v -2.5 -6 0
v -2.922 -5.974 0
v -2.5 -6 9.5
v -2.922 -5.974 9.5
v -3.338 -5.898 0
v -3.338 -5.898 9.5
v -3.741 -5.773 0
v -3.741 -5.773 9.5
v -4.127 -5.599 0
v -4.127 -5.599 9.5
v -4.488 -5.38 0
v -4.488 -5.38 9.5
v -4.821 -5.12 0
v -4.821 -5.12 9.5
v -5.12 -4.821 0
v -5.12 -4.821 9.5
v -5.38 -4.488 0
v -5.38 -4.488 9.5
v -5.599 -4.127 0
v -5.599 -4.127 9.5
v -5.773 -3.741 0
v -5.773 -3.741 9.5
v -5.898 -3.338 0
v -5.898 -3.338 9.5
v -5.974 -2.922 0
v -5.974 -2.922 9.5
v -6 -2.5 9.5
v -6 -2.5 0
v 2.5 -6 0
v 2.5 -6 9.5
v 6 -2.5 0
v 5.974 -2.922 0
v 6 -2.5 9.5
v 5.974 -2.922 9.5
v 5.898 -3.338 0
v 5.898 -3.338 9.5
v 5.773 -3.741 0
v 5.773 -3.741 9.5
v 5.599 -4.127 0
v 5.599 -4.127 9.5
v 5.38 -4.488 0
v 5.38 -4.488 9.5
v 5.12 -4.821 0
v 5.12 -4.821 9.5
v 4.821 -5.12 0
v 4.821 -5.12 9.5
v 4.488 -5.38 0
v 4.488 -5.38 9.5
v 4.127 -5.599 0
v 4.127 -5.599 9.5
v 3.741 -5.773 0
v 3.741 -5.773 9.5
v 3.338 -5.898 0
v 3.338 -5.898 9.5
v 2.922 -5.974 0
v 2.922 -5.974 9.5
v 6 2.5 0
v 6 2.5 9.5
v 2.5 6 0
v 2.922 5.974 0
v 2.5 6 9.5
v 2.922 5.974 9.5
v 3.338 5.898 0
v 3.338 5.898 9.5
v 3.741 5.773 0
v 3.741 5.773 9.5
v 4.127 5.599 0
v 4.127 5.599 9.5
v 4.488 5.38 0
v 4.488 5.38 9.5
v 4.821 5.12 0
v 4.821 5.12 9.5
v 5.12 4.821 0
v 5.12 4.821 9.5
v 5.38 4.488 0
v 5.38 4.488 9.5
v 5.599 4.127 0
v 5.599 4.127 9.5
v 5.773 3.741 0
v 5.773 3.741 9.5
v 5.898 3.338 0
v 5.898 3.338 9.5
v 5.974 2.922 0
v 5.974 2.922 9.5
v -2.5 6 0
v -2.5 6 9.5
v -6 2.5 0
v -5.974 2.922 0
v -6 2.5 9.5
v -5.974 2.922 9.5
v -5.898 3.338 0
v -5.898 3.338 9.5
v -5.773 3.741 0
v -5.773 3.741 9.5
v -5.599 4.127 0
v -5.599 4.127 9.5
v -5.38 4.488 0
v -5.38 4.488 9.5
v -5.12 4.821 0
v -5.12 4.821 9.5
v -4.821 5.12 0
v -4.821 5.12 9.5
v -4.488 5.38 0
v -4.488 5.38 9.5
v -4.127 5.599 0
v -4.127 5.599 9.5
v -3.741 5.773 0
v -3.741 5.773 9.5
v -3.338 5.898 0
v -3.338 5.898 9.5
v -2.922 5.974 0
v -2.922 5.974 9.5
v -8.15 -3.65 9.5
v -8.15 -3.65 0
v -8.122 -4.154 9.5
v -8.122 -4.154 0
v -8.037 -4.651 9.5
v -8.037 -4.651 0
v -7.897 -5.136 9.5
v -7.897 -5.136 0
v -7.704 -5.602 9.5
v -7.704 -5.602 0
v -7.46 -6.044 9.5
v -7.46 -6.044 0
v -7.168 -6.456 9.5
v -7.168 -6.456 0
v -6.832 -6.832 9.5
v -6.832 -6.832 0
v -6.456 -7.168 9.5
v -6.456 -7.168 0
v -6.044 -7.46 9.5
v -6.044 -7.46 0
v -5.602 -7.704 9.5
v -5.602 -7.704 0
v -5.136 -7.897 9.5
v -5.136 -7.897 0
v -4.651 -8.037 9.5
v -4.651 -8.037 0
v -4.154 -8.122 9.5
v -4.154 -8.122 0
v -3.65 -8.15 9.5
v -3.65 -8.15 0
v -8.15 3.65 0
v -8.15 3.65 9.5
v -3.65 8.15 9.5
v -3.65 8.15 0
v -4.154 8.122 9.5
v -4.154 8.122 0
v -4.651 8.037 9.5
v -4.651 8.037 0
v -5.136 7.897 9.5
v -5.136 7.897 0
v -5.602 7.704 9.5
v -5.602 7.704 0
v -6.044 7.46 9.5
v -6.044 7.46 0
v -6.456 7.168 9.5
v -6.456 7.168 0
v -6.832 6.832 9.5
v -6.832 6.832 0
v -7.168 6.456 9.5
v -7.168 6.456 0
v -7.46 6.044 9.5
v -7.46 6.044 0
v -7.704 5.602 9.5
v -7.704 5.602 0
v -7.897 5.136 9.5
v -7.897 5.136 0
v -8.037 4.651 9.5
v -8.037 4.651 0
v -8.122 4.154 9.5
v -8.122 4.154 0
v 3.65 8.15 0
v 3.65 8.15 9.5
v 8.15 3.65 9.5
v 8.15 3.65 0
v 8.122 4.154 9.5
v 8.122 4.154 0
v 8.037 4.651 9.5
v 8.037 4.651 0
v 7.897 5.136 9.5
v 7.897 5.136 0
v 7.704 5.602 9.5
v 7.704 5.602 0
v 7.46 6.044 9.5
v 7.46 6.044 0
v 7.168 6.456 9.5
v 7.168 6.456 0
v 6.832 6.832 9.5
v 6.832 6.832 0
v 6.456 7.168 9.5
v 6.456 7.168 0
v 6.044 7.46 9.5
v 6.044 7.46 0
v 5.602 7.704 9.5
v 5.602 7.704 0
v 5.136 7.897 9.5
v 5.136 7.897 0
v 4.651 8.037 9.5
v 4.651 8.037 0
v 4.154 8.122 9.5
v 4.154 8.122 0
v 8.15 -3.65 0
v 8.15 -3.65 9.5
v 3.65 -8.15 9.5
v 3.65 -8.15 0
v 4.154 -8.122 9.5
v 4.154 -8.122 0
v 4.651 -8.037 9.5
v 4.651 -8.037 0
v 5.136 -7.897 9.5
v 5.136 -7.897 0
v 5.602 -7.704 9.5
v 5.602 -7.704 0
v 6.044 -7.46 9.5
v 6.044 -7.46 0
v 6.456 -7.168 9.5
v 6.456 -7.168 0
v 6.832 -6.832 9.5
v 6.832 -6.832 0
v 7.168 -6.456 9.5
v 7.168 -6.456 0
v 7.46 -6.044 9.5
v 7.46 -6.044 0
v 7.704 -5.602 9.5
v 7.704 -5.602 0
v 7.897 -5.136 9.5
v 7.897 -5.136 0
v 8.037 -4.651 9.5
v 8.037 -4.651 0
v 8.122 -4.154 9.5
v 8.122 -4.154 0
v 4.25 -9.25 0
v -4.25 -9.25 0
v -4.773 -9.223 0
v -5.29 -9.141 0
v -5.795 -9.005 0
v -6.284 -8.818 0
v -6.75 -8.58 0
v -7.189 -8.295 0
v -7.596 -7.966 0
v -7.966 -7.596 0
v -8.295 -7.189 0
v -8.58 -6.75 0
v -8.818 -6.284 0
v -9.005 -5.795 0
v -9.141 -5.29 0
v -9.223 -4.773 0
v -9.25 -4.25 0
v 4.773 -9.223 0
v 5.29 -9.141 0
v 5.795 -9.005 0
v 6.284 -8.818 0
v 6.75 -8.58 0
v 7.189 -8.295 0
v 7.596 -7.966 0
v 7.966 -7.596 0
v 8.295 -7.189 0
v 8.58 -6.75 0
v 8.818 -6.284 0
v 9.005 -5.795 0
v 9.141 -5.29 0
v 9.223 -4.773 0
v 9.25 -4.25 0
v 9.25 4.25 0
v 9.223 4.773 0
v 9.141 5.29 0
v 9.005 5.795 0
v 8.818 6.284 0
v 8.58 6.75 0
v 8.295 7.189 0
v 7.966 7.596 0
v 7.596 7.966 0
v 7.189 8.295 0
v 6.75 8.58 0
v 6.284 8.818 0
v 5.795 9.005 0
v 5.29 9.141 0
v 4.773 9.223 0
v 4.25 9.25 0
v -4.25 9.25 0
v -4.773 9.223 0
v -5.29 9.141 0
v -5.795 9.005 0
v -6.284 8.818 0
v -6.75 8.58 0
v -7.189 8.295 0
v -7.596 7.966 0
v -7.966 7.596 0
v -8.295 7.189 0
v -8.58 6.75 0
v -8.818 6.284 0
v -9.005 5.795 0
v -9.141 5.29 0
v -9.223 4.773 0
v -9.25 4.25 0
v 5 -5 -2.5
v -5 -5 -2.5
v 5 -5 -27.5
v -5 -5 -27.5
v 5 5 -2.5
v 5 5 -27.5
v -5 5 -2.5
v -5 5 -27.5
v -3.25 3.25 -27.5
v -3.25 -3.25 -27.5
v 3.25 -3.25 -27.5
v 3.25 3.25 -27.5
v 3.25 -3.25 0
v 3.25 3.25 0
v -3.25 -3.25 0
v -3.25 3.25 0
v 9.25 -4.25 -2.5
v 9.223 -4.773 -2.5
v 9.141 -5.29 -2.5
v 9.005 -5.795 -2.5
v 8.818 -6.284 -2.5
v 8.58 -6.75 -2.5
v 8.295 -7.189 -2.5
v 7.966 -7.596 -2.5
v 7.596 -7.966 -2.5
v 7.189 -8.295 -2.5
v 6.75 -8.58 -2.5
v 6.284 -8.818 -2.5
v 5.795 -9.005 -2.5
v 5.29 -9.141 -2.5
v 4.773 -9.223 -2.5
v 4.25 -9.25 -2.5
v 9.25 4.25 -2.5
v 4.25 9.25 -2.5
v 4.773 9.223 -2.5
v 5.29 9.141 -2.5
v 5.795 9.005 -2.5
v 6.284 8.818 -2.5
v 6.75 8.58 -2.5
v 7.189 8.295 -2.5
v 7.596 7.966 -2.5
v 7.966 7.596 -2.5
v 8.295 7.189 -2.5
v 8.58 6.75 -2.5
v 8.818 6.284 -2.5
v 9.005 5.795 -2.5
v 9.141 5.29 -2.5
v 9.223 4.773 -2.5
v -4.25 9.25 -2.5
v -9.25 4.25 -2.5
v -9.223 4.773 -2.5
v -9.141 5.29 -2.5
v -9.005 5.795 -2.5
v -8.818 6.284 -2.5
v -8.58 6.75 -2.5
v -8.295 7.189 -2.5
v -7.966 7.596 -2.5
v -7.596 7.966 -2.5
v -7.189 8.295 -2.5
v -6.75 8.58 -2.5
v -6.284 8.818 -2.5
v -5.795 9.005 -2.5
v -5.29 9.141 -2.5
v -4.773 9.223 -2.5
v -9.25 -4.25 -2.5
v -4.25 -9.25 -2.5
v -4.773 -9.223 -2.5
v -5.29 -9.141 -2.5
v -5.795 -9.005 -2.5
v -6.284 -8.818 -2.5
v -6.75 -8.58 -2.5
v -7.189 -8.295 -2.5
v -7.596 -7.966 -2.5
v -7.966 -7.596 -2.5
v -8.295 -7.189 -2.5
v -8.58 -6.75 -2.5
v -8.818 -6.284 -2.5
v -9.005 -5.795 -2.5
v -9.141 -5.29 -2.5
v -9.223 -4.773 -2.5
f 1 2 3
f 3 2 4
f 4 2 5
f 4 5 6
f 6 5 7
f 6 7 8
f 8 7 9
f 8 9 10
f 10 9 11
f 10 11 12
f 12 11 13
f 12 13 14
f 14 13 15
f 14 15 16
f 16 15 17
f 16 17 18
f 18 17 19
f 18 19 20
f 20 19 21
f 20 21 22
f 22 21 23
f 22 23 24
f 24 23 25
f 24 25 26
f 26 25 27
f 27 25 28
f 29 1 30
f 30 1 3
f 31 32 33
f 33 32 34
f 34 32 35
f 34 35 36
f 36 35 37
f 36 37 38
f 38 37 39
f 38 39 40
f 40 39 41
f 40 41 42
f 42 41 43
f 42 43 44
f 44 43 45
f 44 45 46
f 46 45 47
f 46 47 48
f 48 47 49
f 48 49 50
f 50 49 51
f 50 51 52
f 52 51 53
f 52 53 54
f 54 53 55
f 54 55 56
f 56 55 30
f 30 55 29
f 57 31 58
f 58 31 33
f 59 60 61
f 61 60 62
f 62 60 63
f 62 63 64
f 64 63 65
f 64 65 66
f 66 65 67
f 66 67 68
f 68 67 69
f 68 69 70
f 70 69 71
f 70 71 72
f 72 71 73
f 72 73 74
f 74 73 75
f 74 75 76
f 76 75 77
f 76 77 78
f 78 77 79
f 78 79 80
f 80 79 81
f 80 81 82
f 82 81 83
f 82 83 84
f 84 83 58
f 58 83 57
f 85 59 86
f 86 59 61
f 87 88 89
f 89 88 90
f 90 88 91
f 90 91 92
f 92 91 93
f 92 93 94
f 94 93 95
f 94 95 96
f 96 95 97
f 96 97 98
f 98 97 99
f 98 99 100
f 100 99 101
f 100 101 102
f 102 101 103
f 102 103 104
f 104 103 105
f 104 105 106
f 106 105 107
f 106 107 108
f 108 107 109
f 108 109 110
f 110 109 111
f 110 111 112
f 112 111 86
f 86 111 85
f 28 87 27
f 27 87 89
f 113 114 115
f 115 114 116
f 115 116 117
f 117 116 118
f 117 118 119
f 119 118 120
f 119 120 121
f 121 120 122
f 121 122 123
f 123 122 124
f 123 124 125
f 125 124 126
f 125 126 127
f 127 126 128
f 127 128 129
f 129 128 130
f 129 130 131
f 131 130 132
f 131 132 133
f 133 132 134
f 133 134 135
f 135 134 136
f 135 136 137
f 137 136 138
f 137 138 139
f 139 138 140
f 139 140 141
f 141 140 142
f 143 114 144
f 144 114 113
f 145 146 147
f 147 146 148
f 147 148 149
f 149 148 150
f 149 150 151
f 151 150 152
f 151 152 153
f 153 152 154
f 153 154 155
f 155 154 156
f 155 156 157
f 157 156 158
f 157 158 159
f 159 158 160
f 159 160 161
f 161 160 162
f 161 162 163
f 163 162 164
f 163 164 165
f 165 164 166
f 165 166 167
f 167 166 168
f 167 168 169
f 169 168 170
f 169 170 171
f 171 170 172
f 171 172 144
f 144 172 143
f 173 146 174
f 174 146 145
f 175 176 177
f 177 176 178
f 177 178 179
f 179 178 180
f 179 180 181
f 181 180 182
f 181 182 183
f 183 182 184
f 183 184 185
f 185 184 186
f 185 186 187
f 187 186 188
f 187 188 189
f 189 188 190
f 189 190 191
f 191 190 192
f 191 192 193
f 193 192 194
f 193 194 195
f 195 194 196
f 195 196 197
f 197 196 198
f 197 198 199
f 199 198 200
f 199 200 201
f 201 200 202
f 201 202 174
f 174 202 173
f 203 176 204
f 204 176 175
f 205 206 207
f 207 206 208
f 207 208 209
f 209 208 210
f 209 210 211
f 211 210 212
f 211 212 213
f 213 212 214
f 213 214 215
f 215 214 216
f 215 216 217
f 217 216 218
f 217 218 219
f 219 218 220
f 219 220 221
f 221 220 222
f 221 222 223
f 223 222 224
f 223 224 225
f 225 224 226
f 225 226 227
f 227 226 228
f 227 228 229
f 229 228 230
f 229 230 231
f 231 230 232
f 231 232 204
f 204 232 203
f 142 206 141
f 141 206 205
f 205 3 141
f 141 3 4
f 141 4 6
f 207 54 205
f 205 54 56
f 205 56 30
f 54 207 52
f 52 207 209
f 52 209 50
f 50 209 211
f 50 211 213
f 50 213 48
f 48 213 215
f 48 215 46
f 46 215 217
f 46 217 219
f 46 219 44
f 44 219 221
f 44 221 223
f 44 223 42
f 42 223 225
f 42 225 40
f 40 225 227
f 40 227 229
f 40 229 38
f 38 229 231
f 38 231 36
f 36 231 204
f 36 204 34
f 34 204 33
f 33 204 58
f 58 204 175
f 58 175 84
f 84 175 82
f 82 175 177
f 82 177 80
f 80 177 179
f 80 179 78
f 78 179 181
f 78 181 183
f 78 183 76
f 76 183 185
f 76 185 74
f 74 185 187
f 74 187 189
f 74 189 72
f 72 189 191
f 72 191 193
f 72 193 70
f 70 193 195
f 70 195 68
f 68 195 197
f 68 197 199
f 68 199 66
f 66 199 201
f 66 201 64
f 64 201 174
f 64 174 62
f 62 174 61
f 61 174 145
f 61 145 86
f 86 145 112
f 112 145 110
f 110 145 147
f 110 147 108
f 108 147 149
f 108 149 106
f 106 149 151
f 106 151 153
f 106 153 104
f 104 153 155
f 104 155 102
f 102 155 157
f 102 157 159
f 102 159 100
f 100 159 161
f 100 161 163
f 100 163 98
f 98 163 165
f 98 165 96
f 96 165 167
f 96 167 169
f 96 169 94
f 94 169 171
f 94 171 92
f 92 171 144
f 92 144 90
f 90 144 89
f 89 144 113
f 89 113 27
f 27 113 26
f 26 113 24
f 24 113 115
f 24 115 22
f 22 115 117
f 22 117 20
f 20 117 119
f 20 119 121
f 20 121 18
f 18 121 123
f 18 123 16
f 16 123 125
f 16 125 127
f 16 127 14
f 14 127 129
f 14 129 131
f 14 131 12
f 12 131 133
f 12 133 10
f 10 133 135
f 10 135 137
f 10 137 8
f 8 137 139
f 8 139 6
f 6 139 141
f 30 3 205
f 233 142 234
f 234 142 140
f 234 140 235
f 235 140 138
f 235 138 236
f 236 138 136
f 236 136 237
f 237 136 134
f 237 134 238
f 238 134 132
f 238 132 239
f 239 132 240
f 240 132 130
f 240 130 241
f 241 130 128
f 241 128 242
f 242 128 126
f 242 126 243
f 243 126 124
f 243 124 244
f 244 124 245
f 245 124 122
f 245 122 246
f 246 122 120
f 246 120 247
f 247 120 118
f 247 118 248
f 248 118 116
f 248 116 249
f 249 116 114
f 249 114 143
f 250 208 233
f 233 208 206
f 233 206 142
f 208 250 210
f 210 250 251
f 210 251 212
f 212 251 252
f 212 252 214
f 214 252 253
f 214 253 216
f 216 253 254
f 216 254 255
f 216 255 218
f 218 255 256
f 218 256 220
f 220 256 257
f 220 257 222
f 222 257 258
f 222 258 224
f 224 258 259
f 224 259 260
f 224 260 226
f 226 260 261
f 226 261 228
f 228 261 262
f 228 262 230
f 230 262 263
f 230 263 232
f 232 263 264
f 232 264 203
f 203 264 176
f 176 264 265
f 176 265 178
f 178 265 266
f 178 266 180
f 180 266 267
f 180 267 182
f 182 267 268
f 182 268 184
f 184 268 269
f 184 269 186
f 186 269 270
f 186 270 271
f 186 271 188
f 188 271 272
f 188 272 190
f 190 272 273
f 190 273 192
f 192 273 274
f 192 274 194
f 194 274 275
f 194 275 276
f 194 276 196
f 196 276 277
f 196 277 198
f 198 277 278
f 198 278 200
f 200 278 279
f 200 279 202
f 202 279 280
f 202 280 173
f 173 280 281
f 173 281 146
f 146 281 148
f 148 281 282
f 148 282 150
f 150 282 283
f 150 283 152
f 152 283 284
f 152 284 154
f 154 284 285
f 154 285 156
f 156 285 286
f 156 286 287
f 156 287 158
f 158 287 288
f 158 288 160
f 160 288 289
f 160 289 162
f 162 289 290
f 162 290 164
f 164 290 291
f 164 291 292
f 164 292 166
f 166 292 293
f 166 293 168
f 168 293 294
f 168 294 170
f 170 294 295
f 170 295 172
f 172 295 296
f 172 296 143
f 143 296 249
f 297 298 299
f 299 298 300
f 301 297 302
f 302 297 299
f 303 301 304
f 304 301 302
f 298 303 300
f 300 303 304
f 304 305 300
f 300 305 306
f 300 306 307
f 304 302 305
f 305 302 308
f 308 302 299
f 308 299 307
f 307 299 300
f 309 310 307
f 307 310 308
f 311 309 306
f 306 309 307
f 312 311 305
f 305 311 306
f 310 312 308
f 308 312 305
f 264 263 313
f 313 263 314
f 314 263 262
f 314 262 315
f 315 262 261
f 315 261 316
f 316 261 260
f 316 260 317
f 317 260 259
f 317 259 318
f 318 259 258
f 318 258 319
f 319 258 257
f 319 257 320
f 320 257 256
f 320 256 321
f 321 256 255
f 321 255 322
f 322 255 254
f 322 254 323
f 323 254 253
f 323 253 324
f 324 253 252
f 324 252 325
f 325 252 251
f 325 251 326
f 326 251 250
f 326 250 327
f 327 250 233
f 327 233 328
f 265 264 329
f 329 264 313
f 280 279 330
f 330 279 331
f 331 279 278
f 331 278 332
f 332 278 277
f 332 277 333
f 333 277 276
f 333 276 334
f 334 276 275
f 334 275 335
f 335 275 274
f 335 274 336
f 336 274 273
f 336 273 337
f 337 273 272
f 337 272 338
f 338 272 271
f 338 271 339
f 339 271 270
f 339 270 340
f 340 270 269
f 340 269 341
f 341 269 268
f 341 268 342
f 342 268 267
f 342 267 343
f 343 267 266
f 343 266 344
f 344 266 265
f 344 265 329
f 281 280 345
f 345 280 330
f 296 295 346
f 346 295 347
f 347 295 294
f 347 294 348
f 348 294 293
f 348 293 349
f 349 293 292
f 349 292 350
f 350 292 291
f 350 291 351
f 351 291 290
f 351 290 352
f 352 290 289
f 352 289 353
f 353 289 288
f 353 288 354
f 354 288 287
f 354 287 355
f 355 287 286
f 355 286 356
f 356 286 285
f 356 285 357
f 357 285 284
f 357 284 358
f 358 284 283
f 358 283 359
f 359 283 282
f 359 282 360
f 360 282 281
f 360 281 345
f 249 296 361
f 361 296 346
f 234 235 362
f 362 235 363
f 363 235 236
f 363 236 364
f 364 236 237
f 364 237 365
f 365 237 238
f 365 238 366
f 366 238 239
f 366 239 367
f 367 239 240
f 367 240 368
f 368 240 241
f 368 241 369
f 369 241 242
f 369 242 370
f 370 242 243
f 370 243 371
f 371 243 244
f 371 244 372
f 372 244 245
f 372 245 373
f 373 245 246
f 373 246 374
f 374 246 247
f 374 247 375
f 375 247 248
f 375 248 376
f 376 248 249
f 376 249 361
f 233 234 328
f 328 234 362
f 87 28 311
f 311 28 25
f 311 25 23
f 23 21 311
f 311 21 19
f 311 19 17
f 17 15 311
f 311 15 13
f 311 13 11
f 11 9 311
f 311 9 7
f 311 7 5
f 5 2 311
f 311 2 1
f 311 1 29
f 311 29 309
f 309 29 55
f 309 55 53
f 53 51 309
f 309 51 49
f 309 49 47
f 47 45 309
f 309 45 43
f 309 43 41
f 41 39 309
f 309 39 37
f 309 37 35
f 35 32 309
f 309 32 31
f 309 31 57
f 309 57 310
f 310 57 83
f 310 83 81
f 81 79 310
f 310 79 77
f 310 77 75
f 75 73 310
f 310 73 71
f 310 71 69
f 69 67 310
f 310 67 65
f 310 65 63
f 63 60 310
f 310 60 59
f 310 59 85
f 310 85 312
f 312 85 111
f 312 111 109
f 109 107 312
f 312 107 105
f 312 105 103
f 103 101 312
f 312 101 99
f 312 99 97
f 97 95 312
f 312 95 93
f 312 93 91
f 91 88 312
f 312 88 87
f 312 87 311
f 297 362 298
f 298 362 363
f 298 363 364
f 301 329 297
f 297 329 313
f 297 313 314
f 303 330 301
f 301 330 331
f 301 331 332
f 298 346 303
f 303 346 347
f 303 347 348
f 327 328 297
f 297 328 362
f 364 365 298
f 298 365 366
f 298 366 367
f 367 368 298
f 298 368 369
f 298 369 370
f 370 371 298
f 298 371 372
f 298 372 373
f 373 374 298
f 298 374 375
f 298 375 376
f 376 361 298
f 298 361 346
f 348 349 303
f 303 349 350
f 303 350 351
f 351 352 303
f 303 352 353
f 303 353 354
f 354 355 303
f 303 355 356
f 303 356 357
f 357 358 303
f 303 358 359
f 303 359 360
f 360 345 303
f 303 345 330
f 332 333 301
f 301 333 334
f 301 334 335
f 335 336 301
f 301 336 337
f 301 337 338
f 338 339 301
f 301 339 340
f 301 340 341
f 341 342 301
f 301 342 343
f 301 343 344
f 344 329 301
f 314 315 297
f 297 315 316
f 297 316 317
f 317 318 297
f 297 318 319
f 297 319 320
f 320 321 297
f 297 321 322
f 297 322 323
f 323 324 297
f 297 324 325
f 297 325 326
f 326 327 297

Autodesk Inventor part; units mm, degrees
ref_plane "YZ Plane" through (0, 0, 0) normal (1, 0, 0) x (0, 1, 0)
ref_plane "XZ Plane" through (0, 0, 0) normal (0, 1, 0) x (-1, 0, 0)
ref_plane "XY Plane" through (0, 0, 0) normal (0, 0, 1) x (1, 0, 0)
sketch "Boceto1" plane through (0, 0, 0) normal (0, 0, 1) x (1, 0, 0)
  line L0 (-4.25, 9.25) -> (4.25, 9.25)
  line L1 (9.25, 4.25) -> (9.25, -4.25)
  line L2 (4.25, -9.25) -> (-4.25, -9.25)
  line L3 (-9.25, -4.25) -> (-9.25, 4.25)
  arc A0 (-4.25, 9.25) -> (-9.25, 4.25) centre (-4.25, 4.25) ccw
  arc A1 (-9.25, -4.25) -> (-4.25, -9.25) centre (-4.25, -4.25) ccw
  arc A2 (4.25, -9.25) -> (9.25, -4.25) centre (4.25, -4.25) ccw
  arc A3 (9.25, 4.25) -> (4.25, 9.25) centre (4.25, 4.25) ccw
  line L4 (-3.25, 3.25) -> (3.25, 3.25)
  line L5 (3.25, 3.25) -> (3.25, -3.25)
  line L6 (3.25, -3.25) -> (-3.25, -3.25)
  line L7 (-3.25, -3.25) -> (-3.25, 3.25)
  line L8 (-3.25, 3.25) -> (3.25, -3.25) construction
  line L9 (3.25, 3.25) -> (-3.25, -3.25) construction
  point P0 (0, 0)
  dimension "d32" = 6.5
  dimension "d33" = 6.5
extrude "Extrusión1" add sketch "Boceto1" against normal blind 2.5
sketch "Boceto3" plane through (0, 0, -2.5) normal (0, 0, -1) x (-1, 0, 0)
  line L0 (-5, -5) -> (5, -5)
  line L1 (5, -5) -> (5, 5)
  line L2 (5, 5) -> (-5, 5)
  line L3 (-5, 5) -> (-5, -5)
  line L4 (-3.25, 3.25) -> (3.25, 3.25)
  line L5 (3.25, 3.25) -> (3.25, -3.25)
  line L6 (3.25, -3.25) -> (-3.25, -3.25)
  line L7 (-3.25, -3.25) -> (-3.25, 3.25)
extrude "Extrusión2" add sketch "Boceto3" along normal blind 25
sketch "Boceto4" plane through (0, 0, 0) normal (0, 0, 1) x (1, 0, 0)
  line L0 (-3.65, 8.15) -> (3.65, 8.15)
  line L1 (8.15, 3.65) -> (8.15, -3.65)
  line L2 (3.65, -8.15) -> (-3.65, -8.15)
  line L3 (-8.15, -3.65) -> (-8.15, 3.65)
  arc A0 (3.65, -8.15) -> (8.15, -3.65) centre (3.65, -3.65) ccw
  arc A1 (-8.15, -3.65) -> (-3.65, -8.15) centre (-3.65, -3.65) ccw
  arc A2 (-3.65, 8.15) -> (-8.15, 3.65) centre (-3.65, 3.65) ccw
  arc A3 (8.15, 3.65) -> (3.65, 8.15) centre (3.65, 3.65) ccw
  line L4 (-2.5, 6) -> (2.5, 6)
  line L5 (6, 2.5) -> (6, -2.5)
  line L6 (2.5, -6) -> (-2.5, -6)
  line L7 (-6, -2.5) -> (-6, 2.5)
  arc A4 (6, 2.5) -> (2.5, 6) centre (2.5, 2.5) ccw
  arc A5 (2.5, -6) -> (6, -2.5) centre (2.5, -2.5) ccw
  arc A6 (-6, -2.5) -> (-2.5, -6) centre (-2.5, -2.5) ccw
  arc A7 (-2.5, 6) -> (-6, 2.5) centre (-2.5, 2.5) ccw
extrude "Extrusión3" add sketch "Boceto4" along normal blind 9.5
properties part number "_3DPrint"
